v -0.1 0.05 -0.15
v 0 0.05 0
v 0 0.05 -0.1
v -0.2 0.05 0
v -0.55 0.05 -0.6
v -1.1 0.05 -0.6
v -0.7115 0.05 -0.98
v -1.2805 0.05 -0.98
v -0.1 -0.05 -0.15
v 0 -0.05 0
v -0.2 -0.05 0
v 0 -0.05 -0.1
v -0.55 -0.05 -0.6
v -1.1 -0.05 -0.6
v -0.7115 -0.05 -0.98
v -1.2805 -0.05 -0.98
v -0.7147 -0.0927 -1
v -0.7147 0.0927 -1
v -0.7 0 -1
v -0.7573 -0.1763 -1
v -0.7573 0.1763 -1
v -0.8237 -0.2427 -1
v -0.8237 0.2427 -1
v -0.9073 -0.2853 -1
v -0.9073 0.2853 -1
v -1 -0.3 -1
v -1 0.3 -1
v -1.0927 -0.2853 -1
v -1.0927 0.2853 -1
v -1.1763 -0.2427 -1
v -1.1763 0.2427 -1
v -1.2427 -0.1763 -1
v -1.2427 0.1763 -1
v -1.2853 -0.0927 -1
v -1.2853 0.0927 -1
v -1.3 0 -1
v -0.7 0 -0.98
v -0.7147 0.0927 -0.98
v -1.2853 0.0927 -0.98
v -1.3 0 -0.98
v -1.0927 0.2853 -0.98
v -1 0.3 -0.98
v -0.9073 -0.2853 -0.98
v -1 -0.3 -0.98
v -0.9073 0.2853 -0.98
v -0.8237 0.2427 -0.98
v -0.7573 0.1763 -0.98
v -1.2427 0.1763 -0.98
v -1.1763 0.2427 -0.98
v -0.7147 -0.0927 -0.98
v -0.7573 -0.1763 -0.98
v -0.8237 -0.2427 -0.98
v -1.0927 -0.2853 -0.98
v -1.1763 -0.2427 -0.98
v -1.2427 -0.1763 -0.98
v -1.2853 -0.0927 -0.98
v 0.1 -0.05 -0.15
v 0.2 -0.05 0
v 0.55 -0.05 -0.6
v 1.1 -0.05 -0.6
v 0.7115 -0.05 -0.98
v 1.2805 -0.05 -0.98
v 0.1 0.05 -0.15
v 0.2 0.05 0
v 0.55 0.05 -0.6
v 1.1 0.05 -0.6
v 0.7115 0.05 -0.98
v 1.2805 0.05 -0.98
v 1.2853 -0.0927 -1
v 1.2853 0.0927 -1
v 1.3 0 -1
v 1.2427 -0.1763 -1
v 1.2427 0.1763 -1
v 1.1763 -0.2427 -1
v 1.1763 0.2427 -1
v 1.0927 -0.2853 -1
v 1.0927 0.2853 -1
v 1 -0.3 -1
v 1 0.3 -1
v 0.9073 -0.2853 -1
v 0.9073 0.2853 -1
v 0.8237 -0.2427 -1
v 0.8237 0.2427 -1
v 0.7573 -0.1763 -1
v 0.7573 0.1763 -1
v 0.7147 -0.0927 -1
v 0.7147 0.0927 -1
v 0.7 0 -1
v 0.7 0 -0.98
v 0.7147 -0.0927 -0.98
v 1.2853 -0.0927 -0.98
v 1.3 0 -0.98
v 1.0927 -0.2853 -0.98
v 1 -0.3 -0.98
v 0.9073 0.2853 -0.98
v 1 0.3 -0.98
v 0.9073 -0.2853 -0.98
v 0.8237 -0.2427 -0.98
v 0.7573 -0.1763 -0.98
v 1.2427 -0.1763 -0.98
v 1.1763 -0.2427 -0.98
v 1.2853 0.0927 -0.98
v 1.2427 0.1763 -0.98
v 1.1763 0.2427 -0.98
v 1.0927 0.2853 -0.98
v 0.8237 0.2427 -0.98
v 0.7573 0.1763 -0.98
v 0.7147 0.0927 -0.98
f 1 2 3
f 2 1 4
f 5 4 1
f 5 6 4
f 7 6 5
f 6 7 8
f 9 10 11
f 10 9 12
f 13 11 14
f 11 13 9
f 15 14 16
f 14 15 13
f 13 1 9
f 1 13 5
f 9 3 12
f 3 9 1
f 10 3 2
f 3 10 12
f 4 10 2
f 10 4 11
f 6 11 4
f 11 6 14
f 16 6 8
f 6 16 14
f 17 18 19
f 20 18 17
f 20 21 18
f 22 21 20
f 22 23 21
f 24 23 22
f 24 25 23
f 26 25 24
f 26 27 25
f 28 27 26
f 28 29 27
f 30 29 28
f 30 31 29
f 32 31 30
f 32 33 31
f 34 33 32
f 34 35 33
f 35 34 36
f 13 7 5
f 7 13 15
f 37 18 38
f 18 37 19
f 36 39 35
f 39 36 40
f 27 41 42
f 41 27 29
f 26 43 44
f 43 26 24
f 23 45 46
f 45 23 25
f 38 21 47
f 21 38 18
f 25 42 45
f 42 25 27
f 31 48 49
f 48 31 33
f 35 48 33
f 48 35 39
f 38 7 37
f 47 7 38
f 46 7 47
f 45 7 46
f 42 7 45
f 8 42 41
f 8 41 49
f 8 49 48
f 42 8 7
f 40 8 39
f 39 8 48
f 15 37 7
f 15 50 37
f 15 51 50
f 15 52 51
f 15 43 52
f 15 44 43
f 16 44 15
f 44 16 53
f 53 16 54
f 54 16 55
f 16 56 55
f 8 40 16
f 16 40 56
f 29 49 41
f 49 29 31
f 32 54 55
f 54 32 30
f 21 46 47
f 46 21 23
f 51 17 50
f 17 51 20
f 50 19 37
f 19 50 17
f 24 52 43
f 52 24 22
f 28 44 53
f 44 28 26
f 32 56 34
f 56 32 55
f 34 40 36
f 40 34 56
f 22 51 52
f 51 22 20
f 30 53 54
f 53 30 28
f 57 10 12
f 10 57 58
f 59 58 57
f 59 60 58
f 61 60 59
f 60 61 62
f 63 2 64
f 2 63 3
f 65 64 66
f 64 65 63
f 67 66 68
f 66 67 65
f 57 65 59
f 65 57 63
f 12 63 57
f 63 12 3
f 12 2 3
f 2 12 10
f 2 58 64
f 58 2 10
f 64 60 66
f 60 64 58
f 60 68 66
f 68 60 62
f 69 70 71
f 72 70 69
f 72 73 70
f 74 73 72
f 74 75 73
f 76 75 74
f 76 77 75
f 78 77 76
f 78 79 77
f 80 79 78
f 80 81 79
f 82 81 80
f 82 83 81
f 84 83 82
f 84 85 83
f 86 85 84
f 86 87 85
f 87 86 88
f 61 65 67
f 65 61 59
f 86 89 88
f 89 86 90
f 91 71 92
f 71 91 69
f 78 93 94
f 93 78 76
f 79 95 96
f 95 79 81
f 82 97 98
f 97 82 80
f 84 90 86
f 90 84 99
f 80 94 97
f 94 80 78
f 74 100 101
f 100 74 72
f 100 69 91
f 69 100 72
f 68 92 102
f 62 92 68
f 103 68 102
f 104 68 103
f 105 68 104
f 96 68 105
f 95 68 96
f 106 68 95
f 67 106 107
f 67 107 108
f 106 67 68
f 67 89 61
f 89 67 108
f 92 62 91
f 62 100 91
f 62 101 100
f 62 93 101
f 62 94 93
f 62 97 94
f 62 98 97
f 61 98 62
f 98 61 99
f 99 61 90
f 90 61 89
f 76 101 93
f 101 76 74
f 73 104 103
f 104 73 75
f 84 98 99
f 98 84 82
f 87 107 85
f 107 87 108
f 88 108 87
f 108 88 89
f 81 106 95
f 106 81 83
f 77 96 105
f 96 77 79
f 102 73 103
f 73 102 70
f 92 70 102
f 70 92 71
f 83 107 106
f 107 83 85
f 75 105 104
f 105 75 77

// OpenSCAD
//----------------------------------------------
// Freeform Support bridge
//----------------------------------------------
$fn=20;

translate([-0.5,-0.5,-1.0]) bridge();

module bridge(){
    union() {
       translate([-0.1,0,0.0]) pilar();
       translate([1.1,1,0.0]) rotate([0, 0, 180]) pilar();
    }
}
module pilar(){
union() {
    translate([0.5,0.55,0.0]) rotate([90, 0, 0]) {
			linear_extrude(height=0.1) {
				polygon(points=[[-0.62,0],[-1.19,0],[-1,0.4],[-0.1,1],[0.1,1],[0.1,0.9],[0,0.85],[-0.45,0.4]], convexity=1);
			}
		}
    translate([-0.4,0.5,0.0]) cylinder ( h = 0.02, r = 0.3, center = false);
}
}
